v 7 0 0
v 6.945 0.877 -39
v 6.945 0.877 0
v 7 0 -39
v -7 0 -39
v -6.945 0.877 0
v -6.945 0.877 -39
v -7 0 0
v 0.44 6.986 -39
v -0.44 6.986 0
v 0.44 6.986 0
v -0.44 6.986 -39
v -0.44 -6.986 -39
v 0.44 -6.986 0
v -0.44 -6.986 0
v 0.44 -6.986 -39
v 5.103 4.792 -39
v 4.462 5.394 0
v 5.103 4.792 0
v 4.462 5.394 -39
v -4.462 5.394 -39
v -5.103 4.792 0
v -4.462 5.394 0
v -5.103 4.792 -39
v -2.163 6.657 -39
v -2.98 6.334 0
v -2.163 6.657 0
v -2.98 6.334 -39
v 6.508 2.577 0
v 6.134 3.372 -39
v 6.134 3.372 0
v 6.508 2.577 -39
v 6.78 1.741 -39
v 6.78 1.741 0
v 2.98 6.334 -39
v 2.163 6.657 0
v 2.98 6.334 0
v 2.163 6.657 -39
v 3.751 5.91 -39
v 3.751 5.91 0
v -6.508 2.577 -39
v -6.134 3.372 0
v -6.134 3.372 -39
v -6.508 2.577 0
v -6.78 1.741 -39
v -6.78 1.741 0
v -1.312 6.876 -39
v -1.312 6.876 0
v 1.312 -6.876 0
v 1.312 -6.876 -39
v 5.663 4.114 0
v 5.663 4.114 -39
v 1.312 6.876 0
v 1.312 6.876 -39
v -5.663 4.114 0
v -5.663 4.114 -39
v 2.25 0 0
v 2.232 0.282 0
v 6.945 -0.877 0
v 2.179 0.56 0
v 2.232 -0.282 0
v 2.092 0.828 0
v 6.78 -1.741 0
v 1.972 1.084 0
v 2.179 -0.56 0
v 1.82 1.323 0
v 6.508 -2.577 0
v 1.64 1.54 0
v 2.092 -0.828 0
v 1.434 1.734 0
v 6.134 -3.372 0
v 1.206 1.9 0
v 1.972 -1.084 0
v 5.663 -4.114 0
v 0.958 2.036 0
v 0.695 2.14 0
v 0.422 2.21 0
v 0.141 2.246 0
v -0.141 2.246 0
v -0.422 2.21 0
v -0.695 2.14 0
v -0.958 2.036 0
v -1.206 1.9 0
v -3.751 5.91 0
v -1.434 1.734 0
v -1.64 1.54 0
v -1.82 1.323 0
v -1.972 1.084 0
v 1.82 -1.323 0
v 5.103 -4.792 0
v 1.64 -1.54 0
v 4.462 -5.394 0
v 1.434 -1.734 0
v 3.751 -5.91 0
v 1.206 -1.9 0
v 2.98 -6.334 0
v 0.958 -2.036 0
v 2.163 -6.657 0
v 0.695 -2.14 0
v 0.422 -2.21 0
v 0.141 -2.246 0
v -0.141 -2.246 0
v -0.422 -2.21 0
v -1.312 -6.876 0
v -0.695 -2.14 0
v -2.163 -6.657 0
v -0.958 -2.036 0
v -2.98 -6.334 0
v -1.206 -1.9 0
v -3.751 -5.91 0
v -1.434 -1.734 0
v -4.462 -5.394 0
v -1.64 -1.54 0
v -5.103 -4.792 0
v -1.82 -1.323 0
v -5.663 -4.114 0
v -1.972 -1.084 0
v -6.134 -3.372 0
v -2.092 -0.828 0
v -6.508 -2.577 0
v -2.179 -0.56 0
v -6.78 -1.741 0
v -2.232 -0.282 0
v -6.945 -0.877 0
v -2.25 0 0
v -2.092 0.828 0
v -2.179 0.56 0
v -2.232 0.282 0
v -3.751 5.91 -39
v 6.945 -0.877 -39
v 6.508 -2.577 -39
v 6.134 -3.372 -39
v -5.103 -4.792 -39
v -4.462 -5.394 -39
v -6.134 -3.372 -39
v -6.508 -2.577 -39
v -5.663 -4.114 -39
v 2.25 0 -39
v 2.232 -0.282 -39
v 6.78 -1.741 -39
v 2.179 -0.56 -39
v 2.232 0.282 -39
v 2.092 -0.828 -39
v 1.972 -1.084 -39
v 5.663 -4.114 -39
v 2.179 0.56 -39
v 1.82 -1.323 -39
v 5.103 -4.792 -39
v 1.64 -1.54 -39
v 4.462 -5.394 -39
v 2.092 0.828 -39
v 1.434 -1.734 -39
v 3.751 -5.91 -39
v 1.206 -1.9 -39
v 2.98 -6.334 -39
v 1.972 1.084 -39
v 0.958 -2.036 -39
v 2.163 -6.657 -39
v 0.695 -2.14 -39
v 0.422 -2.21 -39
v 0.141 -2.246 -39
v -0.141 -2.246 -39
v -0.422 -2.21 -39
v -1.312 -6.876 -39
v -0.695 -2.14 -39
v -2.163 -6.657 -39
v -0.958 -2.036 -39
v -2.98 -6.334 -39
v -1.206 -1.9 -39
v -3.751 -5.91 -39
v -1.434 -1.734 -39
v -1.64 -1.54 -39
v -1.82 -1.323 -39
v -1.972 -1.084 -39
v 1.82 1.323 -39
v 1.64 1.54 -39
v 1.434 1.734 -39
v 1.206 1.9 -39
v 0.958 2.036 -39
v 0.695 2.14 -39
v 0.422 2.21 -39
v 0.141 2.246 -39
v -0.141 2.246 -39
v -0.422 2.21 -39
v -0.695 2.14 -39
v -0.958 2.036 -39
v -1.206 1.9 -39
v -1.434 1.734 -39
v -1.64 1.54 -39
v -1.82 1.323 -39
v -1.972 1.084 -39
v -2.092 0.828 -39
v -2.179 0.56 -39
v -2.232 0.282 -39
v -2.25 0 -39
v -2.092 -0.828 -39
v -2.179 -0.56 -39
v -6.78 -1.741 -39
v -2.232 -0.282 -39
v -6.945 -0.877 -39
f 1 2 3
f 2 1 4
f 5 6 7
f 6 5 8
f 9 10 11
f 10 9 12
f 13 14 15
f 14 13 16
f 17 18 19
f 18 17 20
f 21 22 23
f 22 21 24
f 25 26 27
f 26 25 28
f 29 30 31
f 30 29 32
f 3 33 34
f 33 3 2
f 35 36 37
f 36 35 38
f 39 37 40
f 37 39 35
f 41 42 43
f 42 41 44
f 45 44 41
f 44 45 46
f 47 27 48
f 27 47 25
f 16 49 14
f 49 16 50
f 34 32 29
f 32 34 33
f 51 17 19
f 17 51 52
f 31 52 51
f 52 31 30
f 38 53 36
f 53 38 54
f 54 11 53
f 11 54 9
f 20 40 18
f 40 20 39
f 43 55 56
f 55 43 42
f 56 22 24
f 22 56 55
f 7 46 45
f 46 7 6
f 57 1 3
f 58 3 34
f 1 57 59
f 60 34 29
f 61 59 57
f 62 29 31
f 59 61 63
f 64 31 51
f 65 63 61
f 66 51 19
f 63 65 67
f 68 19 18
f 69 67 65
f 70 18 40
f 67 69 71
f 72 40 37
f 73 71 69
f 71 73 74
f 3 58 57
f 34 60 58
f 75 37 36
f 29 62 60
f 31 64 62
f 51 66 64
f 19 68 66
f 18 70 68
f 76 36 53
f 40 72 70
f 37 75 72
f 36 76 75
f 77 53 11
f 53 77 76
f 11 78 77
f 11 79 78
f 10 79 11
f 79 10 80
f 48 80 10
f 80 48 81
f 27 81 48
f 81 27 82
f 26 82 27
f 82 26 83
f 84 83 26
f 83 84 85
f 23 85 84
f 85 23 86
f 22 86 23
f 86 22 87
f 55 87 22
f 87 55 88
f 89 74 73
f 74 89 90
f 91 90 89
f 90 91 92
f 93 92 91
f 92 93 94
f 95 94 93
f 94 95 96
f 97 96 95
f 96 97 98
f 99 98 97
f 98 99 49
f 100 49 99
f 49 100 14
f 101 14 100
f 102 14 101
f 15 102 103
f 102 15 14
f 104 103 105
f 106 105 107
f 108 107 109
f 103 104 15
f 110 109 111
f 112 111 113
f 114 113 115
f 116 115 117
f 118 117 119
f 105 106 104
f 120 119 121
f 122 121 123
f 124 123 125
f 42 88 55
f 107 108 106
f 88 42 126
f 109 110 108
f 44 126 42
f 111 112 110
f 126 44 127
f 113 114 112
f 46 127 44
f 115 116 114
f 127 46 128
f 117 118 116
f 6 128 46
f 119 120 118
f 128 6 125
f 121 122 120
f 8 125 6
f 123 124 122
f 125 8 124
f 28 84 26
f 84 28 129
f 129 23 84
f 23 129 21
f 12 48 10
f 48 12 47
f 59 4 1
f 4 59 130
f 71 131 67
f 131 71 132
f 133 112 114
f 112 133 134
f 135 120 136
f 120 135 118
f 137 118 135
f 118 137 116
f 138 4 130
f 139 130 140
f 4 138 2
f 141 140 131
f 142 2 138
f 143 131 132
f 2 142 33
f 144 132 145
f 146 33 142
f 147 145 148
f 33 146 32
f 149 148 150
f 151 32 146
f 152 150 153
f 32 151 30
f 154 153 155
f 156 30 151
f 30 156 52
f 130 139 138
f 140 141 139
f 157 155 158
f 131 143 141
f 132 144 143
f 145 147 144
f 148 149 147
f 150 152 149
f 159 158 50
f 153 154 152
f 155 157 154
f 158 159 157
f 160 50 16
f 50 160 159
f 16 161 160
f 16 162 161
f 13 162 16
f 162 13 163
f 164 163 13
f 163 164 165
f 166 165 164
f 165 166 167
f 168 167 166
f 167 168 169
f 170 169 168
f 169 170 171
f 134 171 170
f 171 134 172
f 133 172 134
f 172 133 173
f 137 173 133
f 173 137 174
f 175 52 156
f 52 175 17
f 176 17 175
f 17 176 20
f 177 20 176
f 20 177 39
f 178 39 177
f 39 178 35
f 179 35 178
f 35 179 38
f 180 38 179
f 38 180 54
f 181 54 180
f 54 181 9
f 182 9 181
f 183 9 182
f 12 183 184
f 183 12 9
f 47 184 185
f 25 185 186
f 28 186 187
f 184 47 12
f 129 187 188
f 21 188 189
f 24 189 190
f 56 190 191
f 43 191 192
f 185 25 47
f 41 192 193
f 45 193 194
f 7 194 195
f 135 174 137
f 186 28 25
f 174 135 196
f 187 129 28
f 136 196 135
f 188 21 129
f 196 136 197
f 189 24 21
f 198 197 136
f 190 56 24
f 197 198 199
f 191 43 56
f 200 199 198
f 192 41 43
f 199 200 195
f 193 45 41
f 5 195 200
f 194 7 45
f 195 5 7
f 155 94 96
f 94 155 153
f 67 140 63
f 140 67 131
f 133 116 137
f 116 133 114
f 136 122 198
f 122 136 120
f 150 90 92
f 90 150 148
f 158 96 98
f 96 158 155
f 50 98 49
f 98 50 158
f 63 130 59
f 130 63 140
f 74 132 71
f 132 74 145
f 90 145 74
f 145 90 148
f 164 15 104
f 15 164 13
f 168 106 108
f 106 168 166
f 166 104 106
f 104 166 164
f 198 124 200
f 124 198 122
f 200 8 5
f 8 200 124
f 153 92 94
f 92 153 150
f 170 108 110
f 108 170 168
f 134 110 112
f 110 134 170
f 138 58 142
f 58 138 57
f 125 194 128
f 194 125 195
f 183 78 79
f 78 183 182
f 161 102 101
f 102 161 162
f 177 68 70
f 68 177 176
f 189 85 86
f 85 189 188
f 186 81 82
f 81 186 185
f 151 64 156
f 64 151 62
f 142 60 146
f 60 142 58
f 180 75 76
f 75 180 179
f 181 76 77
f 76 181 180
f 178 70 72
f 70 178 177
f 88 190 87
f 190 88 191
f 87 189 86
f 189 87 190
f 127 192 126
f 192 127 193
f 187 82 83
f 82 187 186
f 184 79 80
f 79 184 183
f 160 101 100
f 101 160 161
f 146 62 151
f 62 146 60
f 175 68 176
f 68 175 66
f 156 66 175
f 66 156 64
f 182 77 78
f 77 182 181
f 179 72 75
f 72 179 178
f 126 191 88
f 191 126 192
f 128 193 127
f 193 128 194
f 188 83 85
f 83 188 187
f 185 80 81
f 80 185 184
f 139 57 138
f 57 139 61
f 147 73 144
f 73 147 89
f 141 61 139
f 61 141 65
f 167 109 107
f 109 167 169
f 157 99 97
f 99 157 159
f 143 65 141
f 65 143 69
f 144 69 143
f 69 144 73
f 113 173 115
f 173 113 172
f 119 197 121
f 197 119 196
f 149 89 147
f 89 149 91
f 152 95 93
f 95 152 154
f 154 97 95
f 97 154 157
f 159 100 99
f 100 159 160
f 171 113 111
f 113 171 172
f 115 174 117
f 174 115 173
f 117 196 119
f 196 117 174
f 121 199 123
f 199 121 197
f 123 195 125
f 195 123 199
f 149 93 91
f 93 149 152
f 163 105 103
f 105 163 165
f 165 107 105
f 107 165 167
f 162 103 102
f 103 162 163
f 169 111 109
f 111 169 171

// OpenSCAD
$fn = 50;


difference() {
	union() {
		translate(v = [0, 0, -39.0000000000]) {
			cylinder(h = 39, r = 7.0000000000);
		}
		cylinder(h = 0, r = 17.0000000000);
	}
	union() {
		#translate(v = [0, 0, -39]) {
			cylinder(h = 39, r = 2.2500000000);
		}
	}
}
